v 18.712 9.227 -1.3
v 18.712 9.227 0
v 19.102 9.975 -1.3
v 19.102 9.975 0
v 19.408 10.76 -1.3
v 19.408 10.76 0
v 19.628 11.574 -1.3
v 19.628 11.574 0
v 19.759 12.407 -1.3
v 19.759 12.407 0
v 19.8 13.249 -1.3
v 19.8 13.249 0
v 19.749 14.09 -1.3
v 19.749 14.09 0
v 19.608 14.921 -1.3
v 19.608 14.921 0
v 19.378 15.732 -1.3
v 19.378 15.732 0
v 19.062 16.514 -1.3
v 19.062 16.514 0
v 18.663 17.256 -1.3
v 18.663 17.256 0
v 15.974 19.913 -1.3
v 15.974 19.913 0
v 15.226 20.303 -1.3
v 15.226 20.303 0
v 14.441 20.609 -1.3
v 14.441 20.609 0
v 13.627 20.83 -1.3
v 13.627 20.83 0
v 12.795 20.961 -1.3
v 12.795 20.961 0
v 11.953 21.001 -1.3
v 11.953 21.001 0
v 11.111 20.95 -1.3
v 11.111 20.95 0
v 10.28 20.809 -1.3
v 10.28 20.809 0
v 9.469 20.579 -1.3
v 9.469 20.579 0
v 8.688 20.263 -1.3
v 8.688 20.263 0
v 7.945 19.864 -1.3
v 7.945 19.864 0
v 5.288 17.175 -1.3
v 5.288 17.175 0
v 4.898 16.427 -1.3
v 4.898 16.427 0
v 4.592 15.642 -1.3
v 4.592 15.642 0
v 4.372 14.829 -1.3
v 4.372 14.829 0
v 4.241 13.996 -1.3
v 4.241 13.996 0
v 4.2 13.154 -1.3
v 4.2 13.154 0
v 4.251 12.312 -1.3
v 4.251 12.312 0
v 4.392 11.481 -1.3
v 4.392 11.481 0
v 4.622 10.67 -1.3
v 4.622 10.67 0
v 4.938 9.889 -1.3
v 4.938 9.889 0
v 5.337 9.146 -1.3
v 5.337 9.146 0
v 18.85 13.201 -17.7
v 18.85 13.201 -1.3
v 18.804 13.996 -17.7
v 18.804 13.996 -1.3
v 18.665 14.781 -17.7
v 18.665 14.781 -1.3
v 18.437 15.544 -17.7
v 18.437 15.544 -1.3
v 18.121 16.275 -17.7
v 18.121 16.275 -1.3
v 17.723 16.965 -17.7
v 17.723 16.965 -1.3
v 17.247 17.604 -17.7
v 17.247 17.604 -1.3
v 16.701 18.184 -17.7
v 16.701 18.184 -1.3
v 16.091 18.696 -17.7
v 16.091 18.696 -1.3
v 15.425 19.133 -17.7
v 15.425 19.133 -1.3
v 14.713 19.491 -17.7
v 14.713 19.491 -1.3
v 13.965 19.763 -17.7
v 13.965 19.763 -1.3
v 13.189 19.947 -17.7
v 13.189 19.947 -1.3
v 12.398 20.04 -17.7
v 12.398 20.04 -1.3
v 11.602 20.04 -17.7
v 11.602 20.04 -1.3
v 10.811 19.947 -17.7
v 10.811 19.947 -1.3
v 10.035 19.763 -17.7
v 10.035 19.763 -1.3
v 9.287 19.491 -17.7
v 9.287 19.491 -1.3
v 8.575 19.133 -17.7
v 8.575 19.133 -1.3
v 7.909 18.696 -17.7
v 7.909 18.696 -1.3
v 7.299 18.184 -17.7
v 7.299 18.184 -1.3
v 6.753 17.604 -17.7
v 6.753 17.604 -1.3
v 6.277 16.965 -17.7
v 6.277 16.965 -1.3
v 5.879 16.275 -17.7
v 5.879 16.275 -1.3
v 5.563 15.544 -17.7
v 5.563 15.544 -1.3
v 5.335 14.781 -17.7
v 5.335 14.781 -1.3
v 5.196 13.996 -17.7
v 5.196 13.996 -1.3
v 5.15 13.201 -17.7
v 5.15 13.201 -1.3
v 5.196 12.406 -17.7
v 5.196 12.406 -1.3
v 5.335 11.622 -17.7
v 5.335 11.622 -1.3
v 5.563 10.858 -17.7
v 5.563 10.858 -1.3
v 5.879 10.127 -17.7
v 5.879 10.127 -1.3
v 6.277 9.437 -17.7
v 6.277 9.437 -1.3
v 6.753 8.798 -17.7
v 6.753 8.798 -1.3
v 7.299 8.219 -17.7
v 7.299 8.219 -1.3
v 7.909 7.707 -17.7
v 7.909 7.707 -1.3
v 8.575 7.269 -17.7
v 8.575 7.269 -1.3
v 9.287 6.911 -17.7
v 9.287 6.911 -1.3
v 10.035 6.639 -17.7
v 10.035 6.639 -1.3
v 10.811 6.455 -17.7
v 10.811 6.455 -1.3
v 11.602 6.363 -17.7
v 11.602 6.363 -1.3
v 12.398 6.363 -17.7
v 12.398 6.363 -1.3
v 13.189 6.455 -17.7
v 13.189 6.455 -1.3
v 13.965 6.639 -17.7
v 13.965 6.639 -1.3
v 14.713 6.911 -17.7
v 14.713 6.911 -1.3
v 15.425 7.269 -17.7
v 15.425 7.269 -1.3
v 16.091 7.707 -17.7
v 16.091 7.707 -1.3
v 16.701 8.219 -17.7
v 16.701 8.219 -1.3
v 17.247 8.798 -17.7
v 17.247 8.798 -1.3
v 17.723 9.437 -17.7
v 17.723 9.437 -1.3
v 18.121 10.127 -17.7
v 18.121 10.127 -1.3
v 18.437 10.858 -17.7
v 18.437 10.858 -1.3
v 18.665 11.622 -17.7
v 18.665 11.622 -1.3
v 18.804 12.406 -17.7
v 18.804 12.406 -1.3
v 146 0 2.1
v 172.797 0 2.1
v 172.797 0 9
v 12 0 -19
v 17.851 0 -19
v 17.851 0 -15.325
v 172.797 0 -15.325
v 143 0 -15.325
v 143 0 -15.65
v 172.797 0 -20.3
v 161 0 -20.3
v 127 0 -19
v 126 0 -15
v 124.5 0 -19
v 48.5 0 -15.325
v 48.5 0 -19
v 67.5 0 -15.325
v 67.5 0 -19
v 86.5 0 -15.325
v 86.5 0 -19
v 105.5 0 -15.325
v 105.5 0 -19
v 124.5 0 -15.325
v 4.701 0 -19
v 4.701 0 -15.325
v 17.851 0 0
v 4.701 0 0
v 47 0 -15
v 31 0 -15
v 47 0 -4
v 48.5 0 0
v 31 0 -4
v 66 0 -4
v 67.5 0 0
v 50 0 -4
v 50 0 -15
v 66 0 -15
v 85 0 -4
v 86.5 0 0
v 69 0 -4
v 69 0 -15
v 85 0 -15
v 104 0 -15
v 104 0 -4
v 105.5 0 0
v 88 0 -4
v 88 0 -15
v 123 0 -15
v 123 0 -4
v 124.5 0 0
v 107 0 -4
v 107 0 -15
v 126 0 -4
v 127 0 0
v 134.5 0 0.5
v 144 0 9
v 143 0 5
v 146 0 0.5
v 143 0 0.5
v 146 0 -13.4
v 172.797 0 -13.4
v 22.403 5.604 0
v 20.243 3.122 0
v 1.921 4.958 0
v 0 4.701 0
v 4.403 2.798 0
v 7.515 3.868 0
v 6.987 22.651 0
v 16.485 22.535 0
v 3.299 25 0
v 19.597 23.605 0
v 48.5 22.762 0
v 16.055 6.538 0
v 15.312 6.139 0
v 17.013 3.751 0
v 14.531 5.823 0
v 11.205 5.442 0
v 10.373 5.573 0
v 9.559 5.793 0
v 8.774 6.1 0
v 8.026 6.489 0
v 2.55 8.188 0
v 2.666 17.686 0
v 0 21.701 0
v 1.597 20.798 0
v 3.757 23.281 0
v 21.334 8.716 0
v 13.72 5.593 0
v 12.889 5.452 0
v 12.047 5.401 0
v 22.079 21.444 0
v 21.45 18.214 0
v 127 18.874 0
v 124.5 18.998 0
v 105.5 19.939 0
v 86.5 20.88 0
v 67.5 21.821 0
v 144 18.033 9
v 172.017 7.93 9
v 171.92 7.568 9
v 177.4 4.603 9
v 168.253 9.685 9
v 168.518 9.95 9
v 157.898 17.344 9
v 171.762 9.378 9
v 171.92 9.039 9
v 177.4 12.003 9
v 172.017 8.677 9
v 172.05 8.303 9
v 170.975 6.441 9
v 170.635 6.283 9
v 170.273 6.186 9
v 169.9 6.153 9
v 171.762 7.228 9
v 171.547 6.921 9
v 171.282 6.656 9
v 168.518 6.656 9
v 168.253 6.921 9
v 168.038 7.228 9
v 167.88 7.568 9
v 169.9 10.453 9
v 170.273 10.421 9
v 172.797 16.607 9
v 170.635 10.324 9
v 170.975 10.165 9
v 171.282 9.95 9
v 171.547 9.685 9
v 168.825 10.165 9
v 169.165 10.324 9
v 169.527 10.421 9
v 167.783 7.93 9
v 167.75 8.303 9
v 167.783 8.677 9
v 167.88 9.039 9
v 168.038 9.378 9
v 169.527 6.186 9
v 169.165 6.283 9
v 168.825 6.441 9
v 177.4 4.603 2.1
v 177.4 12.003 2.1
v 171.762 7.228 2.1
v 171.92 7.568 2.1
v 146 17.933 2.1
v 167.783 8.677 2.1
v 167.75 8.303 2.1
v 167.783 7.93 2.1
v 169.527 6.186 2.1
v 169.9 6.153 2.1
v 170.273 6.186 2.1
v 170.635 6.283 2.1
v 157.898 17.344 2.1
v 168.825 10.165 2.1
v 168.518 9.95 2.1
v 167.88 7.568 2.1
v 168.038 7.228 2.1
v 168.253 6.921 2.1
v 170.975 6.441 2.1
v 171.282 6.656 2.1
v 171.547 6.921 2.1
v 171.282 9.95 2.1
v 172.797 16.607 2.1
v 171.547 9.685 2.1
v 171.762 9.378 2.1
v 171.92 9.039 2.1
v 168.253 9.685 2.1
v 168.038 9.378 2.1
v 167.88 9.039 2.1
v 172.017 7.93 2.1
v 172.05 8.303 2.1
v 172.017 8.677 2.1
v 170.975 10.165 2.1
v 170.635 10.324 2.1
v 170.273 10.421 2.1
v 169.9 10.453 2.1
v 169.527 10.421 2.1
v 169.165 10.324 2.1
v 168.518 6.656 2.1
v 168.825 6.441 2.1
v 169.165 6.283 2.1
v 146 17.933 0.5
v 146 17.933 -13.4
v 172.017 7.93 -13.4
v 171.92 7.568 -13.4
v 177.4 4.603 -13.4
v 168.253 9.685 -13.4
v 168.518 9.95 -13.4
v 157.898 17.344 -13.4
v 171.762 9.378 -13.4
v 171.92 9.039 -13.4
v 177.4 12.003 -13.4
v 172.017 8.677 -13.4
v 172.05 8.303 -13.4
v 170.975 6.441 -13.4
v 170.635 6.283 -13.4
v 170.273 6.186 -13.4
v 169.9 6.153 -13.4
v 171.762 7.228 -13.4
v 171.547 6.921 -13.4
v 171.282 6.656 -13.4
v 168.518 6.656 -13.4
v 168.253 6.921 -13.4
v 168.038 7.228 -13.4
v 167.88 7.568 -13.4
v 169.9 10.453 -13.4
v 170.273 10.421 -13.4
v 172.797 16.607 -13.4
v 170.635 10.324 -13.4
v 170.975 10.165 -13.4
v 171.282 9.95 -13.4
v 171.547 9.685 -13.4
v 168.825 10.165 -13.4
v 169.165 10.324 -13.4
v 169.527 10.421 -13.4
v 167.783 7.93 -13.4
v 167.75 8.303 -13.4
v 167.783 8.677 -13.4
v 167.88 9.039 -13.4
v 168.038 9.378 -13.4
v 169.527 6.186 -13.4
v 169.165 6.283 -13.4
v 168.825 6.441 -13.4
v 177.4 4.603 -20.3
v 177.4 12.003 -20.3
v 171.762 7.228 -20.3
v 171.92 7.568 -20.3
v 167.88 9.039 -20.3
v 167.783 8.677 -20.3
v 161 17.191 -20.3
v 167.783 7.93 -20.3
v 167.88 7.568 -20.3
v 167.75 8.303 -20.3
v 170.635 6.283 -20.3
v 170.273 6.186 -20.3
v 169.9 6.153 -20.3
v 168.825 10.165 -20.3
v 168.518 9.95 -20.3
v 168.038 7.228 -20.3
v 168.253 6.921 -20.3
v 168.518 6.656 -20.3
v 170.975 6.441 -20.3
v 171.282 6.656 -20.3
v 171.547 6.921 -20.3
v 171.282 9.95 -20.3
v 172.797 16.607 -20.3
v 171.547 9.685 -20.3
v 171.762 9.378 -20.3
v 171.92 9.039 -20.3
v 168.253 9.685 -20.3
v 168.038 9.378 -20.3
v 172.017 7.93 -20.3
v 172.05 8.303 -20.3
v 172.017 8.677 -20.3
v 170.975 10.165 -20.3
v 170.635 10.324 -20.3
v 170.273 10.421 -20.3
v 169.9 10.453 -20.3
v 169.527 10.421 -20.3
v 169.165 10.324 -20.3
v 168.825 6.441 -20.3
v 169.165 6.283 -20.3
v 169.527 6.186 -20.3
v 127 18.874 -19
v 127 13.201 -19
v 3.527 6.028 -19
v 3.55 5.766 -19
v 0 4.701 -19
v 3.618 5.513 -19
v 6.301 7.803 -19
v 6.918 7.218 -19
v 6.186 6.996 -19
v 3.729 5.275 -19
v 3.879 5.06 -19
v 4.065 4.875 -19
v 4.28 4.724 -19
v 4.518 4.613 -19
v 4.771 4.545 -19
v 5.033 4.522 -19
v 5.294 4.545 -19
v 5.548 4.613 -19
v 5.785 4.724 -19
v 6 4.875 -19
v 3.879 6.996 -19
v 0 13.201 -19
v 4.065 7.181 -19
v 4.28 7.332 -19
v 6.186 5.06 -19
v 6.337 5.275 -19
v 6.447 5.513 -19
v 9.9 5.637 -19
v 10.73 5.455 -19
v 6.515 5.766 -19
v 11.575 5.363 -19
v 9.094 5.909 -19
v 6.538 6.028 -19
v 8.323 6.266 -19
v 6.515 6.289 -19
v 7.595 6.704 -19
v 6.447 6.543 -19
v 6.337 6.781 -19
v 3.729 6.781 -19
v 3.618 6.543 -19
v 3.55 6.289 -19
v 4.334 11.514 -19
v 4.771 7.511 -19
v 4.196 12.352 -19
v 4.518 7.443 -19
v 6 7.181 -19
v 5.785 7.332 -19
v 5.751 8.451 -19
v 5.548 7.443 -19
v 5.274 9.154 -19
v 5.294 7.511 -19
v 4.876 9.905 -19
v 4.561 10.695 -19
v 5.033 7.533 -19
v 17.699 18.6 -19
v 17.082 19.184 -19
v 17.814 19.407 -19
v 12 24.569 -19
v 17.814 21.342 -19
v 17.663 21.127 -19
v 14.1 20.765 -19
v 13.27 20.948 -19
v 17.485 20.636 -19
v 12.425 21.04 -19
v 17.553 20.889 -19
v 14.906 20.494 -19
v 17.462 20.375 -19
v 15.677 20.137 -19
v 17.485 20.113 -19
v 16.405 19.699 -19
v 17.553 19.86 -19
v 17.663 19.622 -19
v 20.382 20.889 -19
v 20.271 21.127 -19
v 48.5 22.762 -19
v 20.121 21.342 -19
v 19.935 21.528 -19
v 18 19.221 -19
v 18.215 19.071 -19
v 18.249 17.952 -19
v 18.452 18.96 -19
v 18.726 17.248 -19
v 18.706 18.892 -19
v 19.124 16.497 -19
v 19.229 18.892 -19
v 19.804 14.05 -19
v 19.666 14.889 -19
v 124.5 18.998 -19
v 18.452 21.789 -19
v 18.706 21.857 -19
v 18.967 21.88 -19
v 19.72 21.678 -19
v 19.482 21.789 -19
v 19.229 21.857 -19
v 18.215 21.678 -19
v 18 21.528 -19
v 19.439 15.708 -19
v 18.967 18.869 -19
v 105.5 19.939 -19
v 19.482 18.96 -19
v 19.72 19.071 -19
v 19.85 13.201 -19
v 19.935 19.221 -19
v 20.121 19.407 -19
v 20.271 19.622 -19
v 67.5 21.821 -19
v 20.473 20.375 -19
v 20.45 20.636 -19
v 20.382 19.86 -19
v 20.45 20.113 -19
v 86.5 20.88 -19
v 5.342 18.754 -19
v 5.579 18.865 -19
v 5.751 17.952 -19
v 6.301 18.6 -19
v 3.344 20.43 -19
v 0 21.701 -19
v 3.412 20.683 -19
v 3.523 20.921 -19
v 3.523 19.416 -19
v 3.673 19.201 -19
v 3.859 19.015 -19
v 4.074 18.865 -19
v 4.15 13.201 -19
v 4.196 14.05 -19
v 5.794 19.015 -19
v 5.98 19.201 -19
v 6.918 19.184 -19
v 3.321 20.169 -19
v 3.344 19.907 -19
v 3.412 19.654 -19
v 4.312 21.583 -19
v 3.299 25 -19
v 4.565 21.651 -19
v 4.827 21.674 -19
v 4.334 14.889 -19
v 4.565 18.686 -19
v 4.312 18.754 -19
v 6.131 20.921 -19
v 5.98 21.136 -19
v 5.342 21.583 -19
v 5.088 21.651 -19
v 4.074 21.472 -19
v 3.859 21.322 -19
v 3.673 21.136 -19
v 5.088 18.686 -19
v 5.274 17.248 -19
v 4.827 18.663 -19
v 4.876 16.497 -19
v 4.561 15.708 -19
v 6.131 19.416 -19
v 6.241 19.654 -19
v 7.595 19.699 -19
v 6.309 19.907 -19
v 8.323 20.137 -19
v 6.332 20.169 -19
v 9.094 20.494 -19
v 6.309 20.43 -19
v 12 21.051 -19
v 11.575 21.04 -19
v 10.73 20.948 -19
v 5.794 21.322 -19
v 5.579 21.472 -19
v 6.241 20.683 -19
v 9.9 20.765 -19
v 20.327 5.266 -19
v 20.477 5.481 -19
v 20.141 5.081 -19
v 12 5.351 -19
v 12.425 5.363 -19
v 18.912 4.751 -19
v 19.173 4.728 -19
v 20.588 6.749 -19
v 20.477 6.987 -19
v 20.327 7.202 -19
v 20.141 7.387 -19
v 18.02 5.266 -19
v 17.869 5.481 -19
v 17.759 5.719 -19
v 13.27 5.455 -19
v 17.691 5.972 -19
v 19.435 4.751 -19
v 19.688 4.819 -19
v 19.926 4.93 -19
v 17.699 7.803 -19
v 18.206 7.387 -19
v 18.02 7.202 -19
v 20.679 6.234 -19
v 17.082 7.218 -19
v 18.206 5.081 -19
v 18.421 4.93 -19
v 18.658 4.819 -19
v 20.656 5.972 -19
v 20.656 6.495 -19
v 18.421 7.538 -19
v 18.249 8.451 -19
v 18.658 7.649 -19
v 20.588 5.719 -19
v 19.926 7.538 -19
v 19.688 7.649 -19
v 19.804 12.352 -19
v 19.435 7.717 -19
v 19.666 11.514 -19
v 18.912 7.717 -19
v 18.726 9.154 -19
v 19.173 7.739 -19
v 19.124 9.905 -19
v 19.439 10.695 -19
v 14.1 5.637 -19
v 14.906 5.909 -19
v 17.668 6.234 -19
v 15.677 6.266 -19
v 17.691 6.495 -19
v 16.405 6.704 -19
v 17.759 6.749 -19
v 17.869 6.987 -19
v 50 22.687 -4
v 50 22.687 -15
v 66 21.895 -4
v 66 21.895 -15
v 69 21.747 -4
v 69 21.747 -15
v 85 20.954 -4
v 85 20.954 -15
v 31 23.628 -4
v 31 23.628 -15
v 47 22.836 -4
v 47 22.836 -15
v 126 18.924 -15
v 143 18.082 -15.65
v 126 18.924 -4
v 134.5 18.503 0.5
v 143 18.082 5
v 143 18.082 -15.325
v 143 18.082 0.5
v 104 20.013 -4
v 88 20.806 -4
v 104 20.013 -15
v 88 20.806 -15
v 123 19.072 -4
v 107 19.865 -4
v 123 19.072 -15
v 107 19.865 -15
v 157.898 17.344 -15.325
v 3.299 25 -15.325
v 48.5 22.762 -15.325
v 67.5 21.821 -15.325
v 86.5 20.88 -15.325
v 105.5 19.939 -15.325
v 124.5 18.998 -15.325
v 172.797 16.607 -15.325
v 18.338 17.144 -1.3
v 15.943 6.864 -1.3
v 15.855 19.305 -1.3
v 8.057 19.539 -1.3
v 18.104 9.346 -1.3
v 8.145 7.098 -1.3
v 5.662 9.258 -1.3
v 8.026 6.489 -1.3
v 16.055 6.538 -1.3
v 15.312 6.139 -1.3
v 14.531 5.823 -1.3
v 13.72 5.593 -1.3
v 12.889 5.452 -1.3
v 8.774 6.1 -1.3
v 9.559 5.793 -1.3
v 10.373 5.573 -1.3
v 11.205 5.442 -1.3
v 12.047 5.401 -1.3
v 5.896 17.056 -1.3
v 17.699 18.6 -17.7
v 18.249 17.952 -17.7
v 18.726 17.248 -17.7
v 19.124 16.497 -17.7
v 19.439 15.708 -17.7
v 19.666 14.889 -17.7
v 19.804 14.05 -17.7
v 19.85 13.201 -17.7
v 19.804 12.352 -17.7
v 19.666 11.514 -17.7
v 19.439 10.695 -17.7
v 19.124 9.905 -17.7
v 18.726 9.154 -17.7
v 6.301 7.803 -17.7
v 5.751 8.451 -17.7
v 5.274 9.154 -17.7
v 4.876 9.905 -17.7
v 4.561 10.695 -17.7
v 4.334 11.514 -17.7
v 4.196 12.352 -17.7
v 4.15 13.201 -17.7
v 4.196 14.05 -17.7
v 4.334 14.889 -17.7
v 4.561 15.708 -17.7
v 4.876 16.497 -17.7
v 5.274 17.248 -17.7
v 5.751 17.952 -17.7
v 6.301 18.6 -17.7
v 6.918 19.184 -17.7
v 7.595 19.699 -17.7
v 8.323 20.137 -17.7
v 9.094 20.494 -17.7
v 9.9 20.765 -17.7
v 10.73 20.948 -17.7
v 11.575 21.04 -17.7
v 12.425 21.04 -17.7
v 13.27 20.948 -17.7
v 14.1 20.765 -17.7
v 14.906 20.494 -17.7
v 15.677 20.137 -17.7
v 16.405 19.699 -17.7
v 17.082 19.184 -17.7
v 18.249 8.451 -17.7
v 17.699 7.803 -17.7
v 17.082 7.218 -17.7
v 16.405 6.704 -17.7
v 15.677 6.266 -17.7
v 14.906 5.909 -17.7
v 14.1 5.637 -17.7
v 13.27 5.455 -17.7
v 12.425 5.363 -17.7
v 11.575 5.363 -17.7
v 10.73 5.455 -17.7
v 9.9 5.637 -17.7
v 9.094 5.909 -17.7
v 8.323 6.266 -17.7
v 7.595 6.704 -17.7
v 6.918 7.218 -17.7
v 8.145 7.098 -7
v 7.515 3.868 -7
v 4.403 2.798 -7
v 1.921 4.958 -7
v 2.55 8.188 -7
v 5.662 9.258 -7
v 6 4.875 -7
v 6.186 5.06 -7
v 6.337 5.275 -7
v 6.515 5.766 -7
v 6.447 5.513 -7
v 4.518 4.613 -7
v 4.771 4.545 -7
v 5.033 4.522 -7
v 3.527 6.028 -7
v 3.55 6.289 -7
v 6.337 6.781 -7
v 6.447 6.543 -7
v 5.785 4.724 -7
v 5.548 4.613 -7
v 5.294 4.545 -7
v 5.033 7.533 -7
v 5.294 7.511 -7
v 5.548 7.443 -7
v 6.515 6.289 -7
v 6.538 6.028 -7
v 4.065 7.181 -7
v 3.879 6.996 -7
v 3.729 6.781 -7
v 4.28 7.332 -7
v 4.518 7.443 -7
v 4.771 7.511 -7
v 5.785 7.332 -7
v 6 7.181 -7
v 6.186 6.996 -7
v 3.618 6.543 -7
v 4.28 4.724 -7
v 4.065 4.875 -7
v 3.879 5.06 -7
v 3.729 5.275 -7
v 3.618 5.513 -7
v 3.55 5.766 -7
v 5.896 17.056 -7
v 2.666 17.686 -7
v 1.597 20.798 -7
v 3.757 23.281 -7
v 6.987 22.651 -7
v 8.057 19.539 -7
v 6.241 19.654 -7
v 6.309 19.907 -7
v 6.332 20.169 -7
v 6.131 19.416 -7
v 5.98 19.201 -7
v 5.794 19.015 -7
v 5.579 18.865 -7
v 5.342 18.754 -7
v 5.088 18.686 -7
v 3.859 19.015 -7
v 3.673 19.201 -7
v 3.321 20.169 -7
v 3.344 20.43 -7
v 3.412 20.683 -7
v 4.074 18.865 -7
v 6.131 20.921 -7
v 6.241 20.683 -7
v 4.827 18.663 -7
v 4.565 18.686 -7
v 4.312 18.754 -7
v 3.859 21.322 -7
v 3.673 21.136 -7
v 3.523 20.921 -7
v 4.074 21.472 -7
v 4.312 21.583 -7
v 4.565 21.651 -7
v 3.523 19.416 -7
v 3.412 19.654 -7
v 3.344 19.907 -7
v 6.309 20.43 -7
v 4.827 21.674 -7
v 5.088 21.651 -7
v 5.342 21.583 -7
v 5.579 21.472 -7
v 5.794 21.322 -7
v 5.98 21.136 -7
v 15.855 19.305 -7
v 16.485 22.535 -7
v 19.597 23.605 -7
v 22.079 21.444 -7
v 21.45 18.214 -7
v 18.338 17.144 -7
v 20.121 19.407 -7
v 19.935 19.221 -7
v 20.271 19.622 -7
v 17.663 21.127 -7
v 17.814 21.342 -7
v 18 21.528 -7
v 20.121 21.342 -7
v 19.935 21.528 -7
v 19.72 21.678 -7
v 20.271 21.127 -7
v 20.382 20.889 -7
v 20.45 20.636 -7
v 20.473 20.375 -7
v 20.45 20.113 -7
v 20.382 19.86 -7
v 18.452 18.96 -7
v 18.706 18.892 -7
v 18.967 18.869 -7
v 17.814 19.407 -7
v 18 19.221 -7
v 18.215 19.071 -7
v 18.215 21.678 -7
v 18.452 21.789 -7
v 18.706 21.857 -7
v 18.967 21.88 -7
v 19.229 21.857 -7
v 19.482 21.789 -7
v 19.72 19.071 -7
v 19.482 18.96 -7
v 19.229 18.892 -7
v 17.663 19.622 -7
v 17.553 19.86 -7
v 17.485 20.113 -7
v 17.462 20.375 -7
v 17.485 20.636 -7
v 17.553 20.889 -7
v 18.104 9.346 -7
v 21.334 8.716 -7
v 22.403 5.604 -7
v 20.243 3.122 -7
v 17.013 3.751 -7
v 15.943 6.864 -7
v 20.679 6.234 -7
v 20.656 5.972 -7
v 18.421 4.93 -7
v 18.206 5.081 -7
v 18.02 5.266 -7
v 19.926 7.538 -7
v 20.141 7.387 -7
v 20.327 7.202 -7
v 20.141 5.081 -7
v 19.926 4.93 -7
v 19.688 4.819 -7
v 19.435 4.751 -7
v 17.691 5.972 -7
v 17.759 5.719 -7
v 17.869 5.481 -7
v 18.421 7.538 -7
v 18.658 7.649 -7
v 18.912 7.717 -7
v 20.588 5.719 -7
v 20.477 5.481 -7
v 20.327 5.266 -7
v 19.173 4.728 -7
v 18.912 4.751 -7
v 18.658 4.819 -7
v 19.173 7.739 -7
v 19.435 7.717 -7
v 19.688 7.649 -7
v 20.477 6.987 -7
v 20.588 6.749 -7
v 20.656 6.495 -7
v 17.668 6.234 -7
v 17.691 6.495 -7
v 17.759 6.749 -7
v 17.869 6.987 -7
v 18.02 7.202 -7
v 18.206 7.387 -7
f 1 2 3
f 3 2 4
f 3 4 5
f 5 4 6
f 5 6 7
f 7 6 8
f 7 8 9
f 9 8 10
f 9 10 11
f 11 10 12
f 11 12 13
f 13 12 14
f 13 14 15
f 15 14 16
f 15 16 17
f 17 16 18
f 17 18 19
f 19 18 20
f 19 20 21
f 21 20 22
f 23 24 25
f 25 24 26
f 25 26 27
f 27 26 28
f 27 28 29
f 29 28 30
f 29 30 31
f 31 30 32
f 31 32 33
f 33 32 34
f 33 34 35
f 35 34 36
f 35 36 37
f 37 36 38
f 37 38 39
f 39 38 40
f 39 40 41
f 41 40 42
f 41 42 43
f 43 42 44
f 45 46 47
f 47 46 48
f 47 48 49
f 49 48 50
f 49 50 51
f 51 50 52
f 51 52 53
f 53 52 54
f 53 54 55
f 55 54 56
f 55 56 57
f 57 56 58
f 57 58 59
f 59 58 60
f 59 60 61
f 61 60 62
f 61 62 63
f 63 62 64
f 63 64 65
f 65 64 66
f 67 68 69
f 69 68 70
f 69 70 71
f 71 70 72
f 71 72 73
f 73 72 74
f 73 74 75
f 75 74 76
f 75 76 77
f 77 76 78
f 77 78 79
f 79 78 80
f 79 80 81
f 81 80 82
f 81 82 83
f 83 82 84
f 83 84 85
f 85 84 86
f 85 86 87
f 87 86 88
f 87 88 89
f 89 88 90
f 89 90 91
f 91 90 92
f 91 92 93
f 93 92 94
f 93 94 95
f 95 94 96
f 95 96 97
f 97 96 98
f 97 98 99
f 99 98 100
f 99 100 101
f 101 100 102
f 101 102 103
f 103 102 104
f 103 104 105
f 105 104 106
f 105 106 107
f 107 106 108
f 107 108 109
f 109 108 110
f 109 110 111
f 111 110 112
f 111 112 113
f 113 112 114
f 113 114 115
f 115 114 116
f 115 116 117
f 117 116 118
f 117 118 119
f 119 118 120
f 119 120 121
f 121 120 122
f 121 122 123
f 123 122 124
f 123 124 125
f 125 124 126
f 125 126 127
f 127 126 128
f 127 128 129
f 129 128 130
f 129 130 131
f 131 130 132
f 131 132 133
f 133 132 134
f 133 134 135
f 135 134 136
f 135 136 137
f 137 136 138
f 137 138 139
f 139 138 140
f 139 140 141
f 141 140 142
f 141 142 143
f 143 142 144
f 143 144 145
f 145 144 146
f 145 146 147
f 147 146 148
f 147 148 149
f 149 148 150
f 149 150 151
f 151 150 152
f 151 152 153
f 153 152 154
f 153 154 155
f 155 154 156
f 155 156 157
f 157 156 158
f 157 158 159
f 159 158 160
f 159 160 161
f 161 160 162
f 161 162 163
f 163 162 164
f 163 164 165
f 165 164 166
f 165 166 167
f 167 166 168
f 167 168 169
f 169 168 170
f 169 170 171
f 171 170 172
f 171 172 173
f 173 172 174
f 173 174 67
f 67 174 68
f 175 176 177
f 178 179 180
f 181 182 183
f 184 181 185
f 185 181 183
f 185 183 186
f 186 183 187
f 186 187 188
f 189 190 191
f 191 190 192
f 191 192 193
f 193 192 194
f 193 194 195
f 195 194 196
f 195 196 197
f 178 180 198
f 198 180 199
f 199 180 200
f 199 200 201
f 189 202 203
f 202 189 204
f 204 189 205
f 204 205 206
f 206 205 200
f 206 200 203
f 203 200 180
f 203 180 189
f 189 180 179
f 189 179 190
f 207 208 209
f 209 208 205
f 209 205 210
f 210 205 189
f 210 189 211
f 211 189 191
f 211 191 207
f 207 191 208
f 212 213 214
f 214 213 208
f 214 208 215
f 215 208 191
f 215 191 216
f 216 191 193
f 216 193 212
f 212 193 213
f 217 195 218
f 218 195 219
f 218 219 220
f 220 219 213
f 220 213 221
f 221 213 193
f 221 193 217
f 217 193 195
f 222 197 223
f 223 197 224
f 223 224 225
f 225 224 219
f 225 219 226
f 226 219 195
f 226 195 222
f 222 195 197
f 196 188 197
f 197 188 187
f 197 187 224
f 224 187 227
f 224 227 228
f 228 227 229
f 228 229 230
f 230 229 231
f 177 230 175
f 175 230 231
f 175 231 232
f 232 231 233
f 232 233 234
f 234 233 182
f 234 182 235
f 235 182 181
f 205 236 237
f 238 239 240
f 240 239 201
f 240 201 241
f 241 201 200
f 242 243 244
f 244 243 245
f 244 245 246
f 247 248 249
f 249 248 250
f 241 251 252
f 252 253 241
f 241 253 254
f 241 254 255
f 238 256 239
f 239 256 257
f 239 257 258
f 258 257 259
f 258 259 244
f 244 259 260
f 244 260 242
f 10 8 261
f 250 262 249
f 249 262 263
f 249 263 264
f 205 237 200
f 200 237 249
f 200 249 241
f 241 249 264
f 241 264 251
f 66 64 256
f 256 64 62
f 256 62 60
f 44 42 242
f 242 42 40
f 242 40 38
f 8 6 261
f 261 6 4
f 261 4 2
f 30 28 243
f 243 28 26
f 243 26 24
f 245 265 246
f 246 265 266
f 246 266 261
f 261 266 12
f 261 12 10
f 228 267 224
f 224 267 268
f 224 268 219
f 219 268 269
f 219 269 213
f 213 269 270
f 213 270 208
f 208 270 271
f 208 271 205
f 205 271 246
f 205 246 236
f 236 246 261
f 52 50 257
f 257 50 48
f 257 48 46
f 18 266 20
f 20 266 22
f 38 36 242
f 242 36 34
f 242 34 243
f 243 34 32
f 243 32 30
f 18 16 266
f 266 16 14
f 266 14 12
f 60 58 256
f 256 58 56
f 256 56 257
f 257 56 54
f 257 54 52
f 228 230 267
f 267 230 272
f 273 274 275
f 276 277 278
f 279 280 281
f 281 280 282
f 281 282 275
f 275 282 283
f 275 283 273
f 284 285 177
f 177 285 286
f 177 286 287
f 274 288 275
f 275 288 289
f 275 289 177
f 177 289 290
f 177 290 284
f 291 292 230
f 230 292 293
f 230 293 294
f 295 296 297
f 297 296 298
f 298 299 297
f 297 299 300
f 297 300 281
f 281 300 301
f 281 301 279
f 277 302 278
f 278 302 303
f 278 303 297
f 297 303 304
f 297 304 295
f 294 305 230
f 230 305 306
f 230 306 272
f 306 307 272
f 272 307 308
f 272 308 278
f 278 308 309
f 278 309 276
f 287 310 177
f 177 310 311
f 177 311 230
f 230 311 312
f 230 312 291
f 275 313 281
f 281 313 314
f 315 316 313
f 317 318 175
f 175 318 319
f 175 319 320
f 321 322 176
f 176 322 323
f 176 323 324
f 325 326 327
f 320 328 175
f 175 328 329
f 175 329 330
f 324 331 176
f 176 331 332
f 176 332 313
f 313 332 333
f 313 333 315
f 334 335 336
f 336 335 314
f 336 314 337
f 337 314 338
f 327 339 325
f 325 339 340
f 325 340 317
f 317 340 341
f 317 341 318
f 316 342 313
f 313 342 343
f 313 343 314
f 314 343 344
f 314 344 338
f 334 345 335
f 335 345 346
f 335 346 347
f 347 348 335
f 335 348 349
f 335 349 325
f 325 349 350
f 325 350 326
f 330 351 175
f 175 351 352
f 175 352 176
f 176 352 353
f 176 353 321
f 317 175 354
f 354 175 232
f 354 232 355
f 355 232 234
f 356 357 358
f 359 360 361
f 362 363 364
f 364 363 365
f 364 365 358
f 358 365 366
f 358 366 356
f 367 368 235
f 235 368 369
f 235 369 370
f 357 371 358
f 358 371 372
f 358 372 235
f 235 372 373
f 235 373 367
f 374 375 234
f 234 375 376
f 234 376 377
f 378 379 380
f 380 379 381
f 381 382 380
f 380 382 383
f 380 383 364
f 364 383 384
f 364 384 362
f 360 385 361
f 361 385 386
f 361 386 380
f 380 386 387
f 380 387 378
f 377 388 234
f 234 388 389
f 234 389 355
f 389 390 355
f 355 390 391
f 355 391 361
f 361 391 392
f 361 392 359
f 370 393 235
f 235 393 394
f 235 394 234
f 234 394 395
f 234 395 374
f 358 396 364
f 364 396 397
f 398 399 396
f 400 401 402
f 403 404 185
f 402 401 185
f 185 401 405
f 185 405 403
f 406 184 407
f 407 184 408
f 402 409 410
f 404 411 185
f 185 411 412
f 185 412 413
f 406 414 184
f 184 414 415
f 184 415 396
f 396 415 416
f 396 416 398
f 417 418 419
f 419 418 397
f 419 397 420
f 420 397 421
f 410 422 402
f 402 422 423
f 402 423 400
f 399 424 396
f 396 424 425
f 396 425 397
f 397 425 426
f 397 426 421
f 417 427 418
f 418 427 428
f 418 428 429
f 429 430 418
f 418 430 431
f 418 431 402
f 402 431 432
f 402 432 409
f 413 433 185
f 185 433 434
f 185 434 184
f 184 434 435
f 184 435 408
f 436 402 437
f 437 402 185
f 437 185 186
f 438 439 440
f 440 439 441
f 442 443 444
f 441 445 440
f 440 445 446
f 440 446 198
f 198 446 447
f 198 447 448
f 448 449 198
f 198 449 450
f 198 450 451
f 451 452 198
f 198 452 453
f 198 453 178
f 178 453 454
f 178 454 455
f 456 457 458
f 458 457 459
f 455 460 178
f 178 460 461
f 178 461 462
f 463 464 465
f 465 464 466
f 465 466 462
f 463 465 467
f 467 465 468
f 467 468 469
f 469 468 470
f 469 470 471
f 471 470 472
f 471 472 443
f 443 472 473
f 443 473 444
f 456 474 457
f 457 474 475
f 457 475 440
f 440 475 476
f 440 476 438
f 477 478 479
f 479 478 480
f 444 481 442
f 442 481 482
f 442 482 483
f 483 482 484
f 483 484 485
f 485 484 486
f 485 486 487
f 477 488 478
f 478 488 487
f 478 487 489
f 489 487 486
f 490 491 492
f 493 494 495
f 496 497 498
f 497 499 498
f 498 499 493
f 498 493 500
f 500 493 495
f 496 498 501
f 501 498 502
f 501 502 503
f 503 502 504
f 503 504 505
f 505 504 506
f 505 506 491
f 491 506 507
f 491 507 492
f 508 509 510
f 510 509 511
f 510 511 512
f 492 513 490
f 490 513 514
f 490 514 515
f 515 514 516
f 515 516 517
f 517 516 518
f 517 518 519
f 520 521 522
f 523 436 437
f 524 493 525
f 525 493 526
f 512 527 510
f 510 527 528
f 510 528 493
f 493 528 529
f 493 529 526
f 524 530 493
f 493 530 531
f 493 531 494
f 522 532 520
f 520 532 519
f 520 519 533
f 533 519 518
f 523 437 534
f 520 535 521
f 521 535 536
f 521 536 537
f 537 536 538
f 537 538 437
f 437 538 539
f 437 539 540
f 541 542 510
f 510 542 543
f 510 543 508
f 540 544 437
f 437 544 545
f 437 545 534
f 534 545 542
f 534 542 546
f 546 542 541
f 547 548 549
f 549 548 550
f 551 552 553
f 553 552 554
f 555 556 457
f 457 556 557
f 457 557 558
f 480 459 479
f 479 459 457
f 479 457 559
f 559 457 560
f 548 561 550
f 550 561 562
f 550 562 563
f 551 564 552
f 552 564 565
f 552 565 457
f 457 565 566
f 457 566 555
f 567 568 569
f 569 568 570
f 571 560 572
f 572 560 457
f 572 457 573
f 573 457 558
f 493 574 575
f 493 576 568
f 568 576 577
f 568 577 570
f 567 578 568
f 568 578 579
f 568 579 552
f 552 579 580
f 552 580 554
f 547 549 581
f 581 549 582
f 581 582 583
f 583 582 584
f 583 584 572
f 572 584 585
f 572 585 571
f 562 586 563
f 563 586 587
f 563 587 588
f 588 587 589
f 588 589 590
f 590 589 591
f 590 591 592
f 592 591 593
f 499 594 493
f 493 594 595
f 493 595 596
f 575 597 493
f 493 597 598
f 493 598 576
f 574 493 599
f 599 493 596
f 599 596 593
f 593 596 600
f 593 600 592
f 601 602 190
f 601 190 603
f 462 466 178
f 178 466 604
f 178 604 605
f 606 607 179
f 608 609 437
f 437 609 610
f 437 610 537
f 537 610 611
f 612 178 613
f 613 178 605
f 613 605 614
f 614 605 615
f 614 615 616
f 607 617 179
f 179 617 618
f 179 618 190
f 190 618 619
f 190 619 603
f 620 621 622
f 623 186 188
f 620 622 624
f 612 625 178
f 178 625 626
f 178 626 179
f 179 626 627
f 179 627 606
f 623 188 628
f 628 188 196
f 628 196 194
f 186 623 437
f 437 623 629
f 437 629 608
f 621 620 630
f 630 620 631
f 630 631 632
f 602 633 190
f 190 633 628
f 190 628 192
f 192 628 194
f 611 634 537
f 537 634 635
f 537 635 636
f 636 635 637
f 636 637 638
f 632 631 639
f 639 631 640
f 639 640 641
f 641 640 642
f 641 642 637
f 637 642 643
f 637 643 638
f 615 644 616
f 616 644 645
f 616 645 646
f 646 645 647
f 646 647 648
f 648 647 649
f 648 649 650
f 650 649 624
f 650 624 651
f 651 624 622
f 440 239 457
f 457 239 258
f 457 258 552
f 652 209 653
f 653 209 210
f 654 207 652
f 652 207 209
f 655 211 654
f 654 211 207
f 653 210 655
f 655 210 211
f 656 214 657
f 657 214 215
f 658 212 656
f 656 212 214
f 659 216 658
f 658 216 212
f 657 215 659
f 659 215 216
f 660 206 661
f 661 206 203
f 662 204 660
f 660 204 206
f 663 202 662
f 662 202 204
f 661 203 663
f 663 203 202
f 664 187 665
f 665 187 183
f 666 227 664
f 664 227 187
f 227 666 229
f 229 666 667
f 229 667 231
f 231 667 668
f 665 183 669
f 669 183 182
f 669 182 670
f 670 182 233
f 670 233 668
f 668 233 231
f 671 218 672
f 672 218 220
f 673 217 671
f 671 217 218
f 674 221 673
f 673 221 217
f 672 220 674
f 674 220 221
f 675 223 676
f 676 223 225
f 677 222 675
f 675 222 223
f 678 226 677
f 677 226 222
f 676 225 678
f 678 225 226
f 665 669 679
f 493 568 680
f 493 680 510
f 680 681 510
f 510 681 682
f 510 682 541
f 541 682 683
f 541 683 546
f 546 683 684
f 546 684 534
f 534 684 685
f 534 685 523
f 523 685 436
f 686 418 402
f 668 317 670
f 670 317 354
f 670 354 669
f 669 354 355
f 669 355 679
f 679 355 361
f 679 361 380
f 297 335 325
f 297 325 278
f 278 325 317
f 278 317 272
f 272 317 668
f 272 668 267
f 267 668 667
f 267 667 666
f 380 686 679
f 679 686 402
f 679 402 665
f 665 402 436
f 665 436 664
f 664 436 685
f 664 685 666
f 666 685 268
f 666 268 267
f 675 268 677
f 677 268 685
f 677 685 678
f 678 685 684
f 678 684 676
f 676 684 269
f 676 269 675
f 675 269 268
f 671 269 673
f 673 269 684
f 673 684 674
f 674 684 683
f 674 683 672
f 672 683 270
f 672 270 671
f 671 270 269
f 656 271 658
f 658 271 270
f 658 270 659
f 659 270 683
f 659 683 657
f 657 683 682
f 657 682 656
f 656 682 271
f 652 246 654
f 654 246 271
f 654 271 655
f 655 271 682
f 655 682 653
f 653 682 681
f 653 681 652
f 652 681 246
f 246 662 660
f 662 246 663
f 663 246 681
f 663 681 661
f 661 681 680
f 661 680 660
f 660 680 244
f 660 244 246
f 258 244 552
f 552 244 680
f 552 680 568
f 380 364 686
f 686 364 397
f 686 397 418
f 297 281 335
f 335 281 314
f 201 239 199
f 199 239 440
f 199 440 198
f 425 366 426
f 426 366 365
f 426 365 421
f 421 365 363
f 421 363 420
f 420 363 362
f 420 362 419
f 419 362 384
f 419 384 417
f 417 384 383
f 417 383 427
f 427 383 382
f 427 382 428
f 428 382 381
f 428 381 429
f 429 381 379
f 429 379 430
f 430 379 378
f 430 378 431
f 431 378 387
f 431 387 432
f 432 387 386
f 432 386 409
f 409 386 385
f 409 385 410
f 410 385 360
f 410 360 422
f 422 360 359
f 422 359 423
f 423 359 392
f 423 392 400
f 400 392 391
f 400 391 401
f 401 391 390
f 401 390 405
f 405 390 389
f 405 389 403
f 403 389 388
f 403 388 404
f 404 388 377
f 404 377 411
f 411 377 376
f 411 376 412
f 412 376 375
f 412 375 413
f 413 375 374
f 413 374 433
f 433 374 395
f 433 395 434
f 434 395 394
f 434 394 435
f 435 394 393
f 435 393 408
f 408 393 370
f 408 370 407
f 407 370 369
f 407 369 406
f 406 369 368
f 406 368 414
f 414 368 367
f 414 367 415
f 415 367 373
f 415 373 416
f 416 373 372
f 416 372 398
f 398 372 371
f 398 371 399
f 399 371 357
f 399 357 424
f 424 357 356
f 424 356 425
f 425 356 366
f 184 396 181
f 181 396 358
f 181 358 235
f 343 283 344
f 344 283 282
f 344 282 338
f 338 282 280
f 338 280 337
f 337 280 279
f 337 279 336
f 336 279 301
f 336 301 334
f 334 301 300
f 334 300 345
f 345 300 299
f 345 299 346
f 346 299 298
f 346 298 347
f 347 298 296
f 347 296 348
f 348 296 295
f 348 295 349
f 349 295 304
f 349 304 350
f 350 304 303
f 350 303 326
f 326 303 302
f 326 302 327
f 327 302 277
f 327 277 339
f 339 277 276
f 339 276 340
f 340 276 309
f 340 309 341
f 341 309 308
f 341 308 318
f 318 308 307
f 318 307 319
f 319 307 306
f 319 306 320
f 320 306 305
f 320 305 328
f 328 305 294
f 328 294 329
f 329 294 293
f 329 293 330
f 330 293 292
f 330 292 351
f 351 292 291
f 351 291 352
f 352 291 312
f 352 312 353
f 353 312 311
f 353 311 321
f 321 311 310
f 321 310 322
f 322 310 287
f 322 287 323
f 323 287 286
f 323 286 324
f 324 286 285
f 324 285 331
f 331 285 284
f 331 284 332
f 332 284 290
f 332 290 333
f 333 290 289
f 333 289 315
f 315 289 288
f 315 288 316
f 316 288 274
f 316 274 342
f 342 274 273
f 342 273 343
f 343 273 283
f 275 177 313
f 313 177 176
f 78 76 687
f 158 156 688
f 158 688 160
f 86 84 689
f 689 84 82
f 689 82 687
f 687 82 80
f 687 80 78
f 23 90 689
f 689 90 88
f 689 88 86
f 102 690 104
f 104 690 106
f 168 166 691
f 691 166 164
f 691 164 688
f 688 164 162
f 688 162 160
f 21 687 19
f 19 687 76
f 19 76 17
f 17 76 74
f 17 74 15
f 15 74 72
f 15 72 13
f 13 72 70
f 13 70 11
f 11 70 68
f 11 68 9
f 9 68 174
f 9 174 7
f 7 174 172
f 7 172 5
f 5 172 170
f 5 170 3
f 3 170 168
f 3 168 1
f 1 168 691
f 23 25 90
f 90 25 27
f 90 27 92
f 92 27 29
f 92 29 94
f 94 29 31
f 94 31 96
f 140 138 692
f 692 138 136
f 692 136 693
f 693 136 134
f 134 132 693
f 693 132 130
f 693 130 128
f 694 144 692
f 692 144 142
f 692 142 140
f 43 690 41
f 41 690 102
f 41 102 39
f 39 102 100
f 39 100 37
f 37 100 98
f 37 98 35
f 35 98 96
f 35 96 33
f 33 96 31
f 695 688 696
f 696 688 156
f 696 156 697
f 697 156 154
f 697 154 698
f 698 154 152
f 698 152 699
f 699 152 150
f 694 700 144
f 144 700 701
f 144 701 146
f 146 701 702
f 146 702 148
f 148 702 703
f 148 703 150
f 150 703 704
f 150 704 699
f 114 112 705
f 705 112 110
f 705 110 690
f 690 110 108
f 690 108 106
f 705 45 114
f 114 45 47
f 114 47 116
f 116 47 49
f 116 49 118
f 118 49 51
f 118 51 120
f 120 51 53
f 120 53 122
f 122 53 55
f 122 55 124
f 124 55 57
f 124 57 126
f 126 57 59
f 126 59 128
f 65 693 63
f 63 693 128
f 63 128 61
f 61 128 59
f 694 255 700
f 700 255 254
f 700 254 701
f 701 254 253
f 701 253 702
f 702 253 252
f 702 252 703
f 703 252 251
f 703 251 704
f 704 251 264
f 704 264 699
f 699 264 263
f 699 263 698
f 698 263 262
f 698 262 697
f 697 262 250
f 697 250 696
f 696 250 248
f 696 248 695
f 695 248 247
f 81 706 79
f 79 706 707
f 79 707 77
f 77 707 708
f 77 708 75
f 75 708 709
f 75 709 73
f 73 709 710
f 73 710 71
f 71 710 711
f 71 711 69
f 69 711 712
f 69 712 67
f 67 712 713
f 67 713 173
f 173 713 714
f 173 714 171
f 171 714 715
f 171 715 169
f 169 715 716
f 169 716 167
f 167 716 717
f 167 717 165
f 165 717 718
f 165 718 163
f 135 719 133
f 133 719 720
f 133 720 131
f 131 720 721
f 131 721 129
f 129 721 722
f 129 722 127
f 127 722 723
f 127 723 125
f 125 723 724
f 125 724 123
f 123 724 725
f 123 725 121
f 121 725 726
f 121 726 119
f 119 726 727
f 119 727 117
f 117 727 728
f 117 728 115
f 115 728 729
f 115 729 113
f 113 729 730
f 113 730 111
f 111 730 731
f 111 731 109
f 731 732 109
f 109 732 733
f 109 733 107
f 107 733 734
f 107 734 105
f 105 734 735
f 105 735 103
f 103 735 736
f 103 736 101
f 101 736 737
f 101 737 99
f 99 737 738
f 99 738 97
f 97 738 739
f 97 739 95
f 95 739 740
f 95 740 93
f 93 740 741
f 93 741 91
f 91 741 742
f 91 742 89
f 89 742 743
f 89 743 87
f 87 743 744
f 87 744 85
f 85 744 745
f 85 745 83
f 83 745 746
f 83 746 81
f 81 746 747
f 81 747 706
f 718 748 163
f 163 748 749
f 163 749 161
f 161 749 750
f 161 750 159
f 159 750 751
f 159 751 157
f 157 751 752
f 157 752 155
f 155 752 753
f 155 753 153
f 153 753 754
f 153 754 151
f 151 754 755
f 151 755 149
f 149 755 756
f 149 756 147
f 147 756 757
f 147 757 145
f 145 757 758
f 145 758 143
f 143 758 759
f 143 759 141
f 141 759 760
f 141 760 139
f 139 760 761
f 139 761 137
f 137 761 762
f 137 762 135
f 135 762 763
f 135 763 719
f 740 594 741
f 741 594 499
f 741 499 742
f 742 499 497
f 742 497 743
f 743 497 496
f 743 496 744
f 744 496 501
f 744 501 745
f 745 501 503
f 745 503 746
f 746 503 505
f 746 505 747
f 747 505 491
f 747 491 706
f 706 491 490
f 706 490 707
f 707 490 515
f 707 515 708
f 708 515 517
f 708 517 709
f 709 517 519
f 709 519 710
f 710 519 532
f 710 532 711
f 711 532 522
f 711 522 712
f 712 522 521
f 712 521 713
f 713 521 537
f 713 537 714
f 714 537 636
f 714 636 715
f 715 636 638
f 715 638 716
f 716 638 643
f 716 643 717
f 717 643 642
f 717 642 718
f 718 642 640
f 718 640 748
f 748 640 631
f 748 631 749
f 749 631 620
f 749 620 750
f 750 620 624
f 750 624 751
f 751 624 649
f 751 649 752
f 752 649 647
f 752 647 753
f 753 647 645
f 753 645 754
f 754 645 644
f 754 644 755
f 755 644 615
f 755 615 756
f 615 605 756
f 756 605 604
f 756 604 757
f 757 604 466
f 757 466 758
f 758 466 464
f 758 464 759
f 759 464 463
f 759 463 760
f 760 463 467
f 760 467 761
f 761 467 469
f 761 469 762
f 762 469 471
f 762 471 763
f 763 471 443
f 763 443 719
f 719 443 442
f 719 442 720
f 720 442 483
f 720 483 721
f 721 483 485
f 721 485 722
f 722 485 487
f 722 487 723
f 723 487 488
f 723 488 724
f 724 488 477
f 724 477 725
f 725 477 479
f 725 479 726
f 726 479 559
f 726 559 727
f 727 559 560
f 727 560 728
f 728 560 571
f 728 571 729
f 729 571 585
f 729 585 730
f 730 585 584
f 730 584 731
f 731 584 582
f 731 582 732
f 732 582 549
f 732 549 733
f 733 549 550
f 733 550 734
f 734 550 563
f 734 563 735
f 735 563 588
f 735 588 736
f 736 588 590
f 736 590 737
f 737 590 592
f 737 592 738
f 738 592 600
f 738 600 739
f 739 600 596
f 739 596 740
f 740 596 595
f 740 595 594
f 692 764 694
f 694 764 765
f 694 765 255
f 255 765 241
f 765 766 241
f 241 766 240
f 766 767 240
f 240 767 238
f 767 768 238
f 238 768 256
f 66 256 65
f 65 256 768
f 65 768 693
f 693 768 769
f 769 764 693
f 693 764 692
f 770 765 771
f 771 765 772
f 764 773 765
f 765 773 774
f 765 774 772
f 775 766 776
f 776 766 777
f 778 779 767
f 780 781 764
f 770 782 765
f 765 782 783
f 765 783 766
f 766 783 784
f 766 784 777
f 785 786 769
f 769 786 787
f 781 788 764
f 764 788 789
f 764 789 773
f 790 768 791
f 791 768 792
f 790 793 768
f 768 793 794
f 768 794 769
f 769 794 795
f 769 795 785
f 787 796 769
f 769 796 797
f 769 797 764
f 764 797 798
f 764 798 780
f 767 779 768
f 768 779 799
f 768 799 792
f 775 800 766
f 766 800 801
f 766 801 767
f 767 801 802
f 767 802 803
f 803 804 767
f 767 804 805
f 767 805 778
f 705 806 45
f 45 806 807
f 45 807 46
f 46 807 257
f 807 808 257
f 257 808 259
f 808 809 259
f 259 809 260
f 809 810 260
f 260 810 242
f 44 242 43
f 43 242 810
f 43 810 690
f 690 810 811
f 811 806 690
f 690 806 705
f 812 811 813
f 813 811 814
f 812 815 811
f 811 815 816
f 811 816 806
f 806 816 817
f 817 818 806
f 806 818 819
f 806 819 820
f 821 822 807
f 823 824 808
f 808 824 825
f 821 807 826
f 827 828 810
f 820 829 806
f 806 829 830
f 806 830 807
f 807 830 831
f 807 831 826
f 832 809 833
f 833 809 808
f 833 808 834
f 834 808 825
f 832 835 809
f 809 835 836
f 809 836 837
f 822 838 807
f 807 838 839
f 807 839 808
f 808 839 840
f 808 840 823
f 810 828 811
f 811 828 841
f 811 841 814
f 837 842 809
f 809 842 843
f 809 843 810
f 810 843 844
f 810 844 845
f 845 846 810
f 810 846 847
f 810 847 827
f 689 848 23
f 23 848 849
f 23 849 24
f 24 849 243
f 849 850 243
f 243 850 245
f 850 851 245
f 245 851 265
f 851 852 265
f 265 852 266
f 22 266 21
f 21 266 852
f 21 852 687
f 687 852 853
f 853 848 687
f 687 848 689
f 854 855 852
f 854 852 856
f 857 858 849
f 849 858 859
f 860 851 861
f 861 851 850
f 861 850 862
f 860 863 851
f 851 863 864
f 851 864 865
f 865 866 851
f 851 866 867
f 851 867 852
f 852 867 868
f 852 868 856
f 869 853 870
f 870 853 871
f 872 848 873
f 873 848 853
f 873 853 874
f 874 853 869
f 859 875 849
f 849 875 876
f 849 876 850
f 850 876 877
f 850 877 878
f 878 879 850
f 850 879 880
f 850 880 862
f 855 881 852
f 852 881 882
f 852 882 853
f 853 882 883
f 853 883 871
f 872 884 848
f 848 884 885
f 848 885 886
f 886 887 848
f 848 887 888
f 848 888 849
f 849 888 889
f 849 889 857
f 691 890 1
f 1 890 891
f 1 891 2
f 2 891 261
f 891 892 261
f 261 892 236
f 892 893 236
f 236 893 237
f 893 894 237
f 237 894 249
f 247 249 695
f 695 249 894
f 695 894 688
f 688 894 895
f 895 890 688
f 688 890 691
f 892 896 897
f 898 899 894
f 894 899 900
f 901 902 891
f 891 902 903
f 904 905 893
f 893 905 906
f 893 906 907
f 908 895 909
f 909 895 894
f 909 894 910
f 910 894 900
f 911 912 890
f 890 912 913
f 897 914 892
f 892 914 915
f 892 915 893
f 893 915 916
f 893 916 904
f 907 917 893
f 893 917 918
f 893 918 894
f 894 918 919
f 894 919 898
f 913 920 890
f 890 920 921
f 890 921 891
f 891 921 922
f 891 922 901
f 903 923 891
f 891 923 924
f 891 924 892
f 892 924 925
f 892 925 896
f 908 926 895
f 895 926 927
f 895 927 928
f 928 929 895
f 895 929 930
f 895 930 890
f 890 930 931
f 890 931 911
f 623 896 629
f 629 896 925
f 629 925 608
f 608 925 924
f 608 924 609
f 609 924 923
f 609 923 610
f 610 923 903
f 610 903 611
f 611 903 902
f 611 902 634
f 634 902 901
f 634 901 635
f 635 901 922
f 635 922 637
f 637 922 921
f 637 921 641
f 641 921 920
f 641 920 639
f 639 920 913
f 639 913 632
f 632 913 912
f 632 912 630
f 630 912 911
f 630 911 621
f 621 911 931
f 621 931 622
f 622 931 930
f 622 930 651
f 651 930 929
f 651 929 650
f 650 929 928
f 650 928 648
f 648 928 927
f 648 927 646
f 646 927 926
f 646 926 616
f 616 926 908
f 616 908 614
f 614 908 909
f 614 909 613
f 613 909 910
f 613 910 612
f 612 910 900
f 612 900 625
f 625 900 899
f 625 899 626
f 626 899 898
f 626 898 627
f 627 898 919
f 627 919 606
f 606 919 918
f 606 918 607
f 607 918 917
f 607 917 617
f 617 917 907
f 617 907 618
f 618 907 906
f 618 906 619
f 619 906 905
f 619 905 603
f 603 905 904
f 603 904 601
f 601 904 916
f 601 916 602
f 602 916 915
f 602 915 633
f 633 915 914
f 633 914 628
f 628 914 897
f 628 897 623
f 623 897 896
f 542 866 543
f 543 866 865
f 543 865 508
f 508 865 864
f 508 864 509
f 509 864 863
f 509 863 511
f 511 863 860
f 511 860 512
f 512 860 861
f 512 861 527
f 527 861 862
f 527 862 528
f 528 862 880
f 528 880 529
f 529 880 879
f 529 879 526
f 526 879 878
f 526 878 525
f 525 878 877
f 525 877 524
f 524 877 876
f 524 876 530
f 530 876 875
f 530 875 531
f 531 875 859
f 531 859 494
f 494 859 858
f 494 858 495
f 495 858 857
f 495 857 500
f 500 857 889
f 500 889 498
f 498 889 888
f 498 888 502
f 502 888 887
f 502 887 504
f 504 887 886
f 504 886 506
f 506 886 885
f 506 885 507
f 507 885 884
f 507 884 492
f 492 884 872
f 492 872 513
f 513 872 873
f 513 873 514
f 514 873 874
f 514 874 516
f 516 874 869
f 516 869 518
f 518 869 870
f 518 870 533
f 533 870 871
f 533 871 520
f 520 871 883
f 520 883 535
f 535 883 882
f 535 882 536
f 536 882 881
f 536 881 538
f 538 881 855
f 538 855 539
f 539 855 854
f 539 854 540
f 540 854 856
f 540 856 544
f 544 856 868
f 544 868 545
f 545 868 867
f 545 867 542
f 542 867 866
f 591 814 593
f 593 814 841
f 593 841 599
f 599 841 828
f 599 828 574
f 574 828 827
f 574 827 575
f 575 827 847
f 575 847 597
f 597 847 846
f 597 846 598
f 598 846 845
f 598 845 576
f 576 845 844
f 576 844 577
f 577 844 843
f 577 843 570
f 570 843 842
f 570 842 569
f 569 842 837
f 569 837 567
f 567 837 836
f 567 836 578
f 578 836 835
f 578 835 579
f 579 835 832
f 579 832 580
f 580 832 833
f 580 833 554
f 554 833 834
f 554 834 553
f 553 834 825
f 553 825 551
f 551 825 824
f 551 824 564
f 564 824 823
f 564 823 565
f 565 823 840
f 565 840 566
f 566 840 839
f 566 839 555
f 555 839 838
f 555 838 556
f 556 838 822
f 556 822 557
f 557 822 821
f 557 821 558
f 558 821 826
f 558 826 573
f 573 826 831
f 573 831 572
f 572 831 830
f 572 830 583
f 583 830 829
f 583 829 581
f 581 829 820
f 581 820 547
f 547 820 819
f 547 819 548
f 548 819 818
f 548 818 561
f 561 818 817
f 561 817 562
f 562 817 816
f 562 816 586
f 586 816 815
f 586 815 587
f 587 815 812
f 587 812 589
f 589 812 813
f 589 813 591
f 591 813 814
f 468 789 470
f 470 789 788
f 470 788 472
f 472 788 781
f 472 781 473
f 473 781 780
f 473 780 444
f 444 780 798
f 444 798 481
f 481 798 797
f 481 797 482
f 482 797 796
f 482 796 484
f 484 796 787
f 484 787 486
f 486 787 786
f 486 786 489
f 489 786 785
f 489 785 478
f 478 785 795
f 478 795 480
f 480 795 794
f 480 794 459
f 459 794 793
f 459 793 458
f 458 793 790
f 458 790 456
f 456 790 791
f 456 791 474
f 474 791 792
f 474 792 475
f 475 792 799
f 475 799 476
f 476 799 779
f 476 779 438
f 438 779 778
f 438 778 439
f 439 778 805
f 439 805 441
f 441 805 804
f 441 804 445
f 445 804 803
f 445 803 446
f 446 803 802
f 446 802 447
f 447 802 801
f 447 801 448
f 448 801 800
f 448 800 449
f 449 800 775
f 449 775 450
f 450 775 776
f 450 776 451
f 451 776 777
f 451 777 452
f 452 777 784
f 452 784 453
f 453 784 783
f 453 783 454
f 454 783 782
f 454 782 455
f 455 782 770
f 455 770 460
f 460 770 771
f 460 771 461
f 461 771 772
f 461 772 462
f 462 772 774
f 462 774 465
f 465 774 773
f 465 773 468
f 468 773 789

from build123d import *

# Parameters (mm, degrees)
SKETCH_1_W           = 16
SKETCH_1_H           = 11
EXTRUDE_1_DEPTH      = 25
SKETCH_2_OUTSIDE_W   = 215.706
SKETCH_2_OUTSIDE_H   = 63.306
SKETCH_2_OUTSIDE_R   = 2.15
SKETCH_2_OUTSIDE_R_2 = 6.85
CUT_EXTRUDE_1_DEPTH  = 182.533054841
SKETCH_3_R           = 7.8
CUT_EXTRUDE_2_DEPTH  = 1.3
SKETCH_4_R           = 7.85
CUT_EXTRUDE_3_DEPTH  = 1.3
CUT_EXTRUDE_5_DEPTH  = 7
SKETCH_5_3_R         = 1.50558517
CUT_EXTRUDE_6_DEPTH  = 181.299334441


with BuildPart() as part:
    # 草图1 → 凸台-拉伸1 (new body)
    with BuildSketch(Plane(origin=(0, 0, 0), x_dir=(1, 0, 0), z_dir=(0, 1, 0))):
        Polygon((0, 0), (0, 19), (127, 19), (161, 20.3), (177.4, 20.3), (177.4, 13.4), (146, 13.4), (146, -2.1), (177.4, -2.1), (177.4, -9), (144, -9), (127, 0), align=None)
        with Locations((39, 9.5)):
            Rectangle(SKETCH_1_W, SKETCH_1_H, mode=Mode.SUBTRACT)
        Polygon((126, 15), (126, 4), (143, -5), (143, 15.65), align=None, mode=Mode.SUBTRACT)
        with Locations((58, 9.5)):
            Rectangle(SKETCH_1_W, SKETCH_1_H, mode=Mode.SUBTRACT)
        with Locations((77, 9.5)):
            Rectangle(SKETCH_1_W, SKETCH_1_H, mode=Mode.SUBTRACT)
        with Locations((96, 9.5)):
            Rectangle(SKETCH_1_W, SKETCH_1_H, mode=Mode.SUBTRACT)
        with Locations((115, 9.5)):
            Rectangle(SKETCH_1_W, SKETCH_1_H, mode=Mode.SUBTRACT)
    extrude(amount=EXTRUDE_1_DEPTH)

    # 草图2 outside → 切除-拉伸1 (cut, through all)
    # profile 1 of 3: a face of its own
    with BuildSketch(Plane.XY.offset(9)):
        with Locations((88.7, 12.5)):
            Rectangle(SKETCH_2_OUTSIDE_W, SKETCH_2_OUTSIDE_H)
        Polygon((0, 21.701223904), (3.298776096, 25), (172.796734854, 16.606530291), (177.4, 12.003265146), (177.4, 4.603265146), (172.796734854, 0), (4.701223904, 0), (0, 4.701223904), align=None, mode=Mode.SUBTRACT)
    # profile 2 of 3: a face of its own
    with BuildSketch(Plane.XY.offset(9)):
        with Locations((169.9, 8.303265146)):
            Circle(SKETCH_2_OUTSIDE_R)
    # profile 3 of 3: a face of its own
    with BuildSketch(Plane.XY.offset(9)):
        with Locations((12, 13.201223904)):
            Circle(SKETCH_2_OUTSIDE_R_2)
    extrude(amount=-CUT_EXTRUDE_1_DEPTH, mode=Mode.SUBTRACT)

    # 草图3 → 切除-拉伸2 (cut)
    with BuildSketch(Plane.XY):
        with Locations((12, 13.201223904)):
            Circle(SKETCH_3_R)
    extrude(amount=-CUT_EXTRUDE_2_DEPTH, mode=Mode.SUBTRACT)

    # 草图4 → 切除-拉伸3 (cut)
    with BuildSketch(Plane(origin=(0, 0, -19), x_dir=(-1, 0, 0), z_dir=(0, 0, -1))):
        with Locations((-12, 13.201223904)):
            Circle(SKETCH_4_R)
    extrude(amount=-CUT_EXTRUDE_3_DEPTH, mode=Mode.SUBTRACT)

    # 草图5 → 切除-拉伸5 (cut)
    with BuildSketch(Plane.XY):
        Polygon((15.855153168, 19.304745085), (18.337708884, 17.144440218), (21.449865637, 18.214244102), (22.079466672, 21.444352852), (19.596910956, 23.604657718), (16.484754204, 22.534853834), align=None)
        Polygon((5.896478819, 17.056377072), (8.056783686, 19.538932788), (6.986979802, 22.651089541), (3.756871052, 23.280690576), (1.596566186, 20.79813486), (2.66637007, 17.685978108), align=None)
        Polygon((18.103521181, 9.346070736), (15.943216314, 6.86351502), (17.013020198, 3.751358267), (20.243128948, 3.121757232), (22.403433814, 5.604312948), (21.33362993, 8.7164697), align=None)
        Polygon((8.144846832, 7.097702723), (5.662291116, 9.25800759), (2.550134363, 8.188203706), (1.920533328, 4.958094956), (4.403089044, 2.79779009), (7.515245796, 3.867593974), align=None)
    extrude(amount=-CUT_EXTRUDE_5_DEPTH, mode=Mode.SUBTRACT)

    # 草图5<3> → 切除-拉伸6 (cut, through all)
    with BuildSketch(Plane.XY):
        with Locations((5.03269008, 6.02789884)):
            Circle(SKETCH_5_3_R)
        with Locations((4.826674936, 20.168533824)):
            Circle(SKETCH_5_3_R)
        with Locations((18.96730992, 20.374548968)):
            Circle(SKETCH_5_3_R)
        with Locations((19.173325064, 6.233913984)):
            Circle(SKETCH_5_3_R)
    extrude(amount=-CUT_EXTRUDE_6_DEPTH, mode=Mode.SUBTRACT)


solid = part.part
